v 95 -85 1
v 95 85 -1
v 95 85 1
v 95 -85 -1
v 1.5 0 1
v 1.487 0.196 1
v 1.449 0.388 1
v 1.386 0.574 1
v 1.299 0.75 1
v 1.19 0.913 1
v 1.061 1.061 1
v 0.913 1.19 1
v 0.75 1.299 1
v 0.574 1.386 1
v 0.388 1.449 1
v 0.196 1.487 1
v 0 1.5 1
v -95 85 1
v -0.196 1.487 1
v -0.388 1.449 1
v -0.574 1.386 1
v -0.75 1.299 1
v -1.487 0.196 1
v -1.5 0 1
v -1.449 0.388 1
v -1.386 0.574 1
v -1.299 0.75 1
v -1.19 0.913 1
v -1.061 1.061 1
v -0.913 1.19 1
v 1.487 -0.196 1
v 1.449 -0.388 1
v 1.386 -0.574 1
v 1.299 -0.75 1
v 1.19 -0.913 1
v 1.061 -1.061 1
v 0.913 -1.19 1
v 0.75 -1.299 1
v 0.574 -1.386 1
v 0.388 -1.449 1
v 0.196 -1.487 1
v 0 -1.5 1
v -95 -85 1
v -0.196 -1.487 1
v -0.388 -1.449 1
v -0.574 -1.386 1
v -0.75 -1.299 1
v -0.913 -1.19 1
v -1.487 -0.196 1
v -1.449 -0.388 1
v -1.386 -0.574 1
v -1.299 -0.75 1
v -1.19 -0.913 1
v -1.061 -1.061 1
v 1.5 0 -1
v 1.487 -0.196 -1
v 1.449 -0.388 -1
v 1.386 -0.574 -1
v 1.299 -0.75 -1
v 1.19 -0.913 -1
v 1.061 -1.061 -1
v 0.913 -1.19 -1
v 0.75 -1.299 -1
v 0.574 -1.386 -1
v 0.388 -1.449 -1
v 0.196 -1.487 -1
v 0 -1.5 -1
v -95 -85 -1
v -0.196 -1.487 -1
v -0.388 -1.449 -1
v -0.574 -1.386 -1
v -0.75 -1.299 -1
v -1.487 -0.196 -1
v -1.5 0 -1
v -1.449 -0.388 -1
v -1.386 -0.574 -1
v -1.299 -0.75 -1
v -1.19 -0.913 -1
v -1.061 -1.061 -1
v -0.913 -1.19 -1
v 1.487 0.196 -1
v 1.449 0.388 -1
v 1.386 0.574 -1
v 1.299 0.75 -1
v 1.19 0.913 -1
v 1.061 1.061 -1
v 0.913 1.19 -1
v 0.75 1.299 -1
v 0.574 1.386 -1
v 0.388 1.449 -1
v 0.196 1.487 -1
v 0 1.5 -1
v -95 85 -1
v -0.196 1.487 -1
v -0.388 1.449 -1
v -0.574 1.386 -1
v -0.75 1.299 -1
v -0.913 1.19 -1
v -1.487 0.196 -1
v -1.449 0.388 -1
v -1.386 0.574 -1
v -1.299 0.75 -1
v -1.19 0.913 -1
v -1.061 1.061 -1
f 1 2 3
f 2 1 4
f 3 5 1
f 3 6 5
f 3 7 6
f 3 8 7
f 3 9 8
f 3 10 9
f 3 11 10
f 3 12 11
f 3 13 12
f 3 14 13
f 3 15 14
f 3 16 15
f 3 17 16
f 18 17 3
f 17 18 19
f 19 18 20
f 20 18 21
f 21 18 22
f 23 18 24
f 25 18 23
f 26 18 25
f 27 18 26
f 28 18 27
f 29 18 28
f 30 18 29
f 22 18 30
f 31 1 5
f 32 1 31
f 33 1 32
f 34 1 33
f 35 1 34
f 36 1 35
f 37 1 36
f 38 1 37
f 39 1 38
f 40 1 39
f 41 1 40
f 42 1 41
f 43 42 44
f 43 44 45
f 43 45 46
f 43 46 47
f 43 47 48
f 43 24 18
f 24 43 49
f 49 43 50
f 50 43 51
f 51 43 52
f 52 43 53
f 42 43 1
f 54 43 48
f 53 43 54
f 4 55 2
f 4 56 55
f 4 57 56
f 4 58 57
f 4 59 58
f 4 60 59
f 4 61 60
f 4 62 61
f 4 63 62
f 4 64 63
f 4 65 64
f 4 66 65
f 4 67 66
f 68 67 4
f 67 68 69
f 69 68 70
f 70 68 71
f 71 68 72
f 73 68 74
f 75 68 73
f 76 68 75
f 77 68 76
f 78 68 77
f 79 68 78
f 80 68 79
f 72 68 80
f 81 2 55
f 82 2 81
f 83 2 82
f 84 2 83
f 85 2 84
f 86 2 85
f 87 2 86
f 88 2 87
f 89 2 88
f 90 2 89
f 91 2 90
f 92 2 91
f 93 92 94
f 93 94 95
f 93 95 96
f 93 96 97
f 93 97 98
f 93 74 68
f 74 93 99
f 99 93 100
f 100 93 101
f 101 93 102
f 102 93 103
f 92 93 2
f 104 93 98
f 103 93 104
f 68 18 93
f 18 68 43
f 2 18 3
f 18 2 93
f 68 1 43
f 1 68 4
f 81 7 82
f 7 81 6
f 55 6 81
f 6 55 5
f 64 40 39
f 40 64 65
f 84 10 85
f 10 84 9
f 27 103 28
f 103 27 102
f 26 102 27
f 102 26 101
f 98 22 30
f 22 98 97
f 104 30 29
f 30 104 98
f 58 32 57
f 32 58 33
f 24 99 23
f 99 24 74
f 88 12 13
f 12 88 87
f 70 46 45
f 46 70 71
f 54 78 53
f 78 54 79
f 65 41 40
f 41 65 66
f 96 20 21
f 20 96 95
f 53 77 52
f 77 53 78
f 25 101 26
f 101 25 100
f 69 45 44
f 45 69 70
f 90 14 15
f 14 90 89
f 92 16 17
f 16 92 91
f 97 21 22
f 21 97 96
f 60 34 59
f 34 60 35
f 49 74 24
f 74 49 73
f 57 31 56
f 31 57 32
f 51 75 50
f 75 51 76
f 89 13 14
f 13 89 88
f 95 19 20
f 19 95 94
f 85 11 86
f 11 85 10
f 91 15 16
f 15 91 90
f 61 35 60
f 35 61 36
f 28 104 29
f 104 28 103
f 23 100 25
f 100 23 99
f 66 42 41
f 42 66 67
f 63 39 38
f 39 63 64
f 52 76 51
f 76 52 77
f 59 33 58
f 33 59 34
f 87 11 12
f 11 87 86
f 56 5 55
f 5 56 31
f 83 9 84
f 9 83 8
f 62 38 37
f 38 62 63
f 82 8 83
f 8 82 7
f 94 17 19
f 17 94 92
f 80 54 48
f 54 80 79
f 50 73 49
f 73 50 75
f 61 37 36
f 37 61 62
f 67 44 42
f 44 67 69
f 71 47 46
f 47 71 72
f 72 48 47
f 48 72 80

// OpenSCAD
// ========================================
// a 190 x 170 x 2 mm plate with one 3 mm holes
// NeuroCAD canonical IR; dimensions are millimetres
// ========================================
$fn = 48;

difference() {
  cube(size=[190, 170, 2], center=true);
  cylinder(r=1.5, h=4, center=true);
}
